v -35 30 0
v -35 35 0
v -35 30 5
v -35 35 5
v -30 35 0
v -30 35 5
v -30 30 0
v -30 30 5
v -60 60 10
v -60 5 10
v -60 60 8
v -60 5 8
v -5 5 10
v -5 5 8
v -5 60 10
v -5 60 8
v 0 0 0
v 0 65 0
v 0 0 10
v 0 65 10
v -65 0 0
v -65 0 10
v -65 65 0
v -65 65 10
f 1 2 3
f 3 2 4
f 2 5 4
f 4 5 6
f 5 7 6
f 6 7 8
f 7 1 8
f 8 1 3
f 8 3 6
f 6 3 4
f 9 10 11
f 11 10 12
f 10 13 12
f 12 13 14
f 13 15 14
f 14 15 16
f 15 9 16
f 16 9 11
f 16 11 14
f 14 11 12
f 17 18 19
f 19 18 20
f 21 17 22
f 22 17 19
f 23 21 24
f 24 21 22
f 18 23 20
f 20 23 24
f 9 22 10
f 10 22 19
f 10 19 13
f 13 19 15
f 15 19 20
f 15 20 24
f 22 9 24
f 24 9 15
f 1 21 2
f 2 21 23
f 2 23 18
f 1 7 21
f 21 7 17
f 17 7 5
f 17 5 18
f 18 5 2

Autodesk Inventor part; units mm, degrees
ref_plane "YZ Plane" through (0, 0, 0) normal (1, 0, 0) x (0, 1, 0)
ref_plane "XZ Plane" through (0, 0, 0) normal (0, 1, 0) x (-1, 0, 0)
ref_plane "XY Plane" through (0, 0, 0) normal (0, 0, 1) x (1, 0, 0)
sketch "Sketch1" plane through (0, 0, 0) normal (0, 0, 1) x (1, 0, 0)
  line L0 (0, 0) -> (-65, 0)
  line L1 (-65, 0) -> (-65, 65)
  line L2 (-65, 65) -> (0, 65)
  line L3 (0, 65) -> (0, 0)
  dimension "d4" = 65
  dimension "d5" = 65
extrude "Extrusion1" add sketch "Sketch1" along normal blind 10
sketch "Sketch2" plane through (0, 0, 10) normal (0, 0, 1) x (1, 0, 0)
  line L0 (-5, 5) -> (-60, 5)
  line L1 (-60, 5) -> (-60, 60)
  line L2 (-60, 60) -> (-5, 60)
  line L3 (-5, 60) -> (-5, 5)
  point P0 (0, 0)
  dimension "d8" = 55
  dimension "d9" = 55
extrude "Extrusion2" cut sketch "Sketch2" against normal blind 2
sketch "Sketch3" plane through (0, 0, 0) normal (0, 0, -1) x (-1, 0, 0)
  line L0 (30, 35) -> (35, 35)
  line L1 (35, 35) -> (35, 30)
  line L2 (35, 30) -> (30, 30)
  line L3 (30, 30) -> (30, 35)
  point P0 (0, 0)
  point P1 (32.5, 32.5)
  dimension "d20" = 5
  dimension "d21" = 5
extrude "Extrusion4" cut sketch "Sketch3" against normal blind 5
properties part number "Clip_MarkerHolderV1"
